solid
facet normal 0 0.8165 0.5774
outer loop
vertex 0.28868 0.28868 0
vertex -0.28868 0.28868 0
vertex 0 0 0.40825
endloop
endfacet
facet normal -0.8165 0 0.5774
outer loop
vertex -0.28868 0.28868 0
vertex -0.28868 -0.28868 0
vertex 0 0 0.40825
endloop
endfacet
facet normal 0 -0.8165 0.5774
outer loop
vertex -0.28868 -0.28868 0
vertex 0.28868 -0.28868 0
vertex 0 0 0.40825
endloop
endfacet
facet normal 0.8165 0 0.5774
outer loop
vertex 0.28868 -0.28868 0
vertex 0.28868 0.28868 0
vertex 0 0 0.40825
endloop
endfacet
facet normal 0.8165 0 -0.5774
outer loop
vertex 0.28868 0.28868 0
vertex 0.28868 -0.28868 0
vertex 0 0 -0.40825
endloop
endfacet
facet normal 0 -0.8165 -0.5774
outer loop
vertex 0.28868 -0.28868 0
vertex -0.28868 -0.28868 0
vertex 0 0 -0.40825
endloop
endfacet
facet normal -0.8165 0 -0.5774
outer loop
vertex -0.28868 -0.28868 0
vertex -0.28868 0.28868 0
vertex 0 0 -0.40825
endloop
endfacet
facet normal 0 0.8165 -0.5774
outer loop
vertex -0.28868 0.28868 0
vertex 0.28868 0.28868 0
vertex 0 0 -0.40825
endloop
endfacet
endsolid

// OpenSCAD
module Octahedron () {
polyhedron (
points = [
[0.288675134595, 0.288675134595, 0.0],
[-0.288675134595, 0.288675134595, 0.0],
[-0.288675134595, -0.288675134595, 0.0],
[0.288675134595, -0.288675134595, 0.0],
[0.0, 0.0, 0.408248290464],
[0.0, 0.0, -0.408248290464],
],
faces = [
[0, 1, 4],
[1, 2, 4],
[2, 3, 4],
[3, 0, 4],
[0, 3, 5],
[3, 2, 5],
[2, 1, 5],
[1, 0, 5],
]);
}

Octahedron ();
